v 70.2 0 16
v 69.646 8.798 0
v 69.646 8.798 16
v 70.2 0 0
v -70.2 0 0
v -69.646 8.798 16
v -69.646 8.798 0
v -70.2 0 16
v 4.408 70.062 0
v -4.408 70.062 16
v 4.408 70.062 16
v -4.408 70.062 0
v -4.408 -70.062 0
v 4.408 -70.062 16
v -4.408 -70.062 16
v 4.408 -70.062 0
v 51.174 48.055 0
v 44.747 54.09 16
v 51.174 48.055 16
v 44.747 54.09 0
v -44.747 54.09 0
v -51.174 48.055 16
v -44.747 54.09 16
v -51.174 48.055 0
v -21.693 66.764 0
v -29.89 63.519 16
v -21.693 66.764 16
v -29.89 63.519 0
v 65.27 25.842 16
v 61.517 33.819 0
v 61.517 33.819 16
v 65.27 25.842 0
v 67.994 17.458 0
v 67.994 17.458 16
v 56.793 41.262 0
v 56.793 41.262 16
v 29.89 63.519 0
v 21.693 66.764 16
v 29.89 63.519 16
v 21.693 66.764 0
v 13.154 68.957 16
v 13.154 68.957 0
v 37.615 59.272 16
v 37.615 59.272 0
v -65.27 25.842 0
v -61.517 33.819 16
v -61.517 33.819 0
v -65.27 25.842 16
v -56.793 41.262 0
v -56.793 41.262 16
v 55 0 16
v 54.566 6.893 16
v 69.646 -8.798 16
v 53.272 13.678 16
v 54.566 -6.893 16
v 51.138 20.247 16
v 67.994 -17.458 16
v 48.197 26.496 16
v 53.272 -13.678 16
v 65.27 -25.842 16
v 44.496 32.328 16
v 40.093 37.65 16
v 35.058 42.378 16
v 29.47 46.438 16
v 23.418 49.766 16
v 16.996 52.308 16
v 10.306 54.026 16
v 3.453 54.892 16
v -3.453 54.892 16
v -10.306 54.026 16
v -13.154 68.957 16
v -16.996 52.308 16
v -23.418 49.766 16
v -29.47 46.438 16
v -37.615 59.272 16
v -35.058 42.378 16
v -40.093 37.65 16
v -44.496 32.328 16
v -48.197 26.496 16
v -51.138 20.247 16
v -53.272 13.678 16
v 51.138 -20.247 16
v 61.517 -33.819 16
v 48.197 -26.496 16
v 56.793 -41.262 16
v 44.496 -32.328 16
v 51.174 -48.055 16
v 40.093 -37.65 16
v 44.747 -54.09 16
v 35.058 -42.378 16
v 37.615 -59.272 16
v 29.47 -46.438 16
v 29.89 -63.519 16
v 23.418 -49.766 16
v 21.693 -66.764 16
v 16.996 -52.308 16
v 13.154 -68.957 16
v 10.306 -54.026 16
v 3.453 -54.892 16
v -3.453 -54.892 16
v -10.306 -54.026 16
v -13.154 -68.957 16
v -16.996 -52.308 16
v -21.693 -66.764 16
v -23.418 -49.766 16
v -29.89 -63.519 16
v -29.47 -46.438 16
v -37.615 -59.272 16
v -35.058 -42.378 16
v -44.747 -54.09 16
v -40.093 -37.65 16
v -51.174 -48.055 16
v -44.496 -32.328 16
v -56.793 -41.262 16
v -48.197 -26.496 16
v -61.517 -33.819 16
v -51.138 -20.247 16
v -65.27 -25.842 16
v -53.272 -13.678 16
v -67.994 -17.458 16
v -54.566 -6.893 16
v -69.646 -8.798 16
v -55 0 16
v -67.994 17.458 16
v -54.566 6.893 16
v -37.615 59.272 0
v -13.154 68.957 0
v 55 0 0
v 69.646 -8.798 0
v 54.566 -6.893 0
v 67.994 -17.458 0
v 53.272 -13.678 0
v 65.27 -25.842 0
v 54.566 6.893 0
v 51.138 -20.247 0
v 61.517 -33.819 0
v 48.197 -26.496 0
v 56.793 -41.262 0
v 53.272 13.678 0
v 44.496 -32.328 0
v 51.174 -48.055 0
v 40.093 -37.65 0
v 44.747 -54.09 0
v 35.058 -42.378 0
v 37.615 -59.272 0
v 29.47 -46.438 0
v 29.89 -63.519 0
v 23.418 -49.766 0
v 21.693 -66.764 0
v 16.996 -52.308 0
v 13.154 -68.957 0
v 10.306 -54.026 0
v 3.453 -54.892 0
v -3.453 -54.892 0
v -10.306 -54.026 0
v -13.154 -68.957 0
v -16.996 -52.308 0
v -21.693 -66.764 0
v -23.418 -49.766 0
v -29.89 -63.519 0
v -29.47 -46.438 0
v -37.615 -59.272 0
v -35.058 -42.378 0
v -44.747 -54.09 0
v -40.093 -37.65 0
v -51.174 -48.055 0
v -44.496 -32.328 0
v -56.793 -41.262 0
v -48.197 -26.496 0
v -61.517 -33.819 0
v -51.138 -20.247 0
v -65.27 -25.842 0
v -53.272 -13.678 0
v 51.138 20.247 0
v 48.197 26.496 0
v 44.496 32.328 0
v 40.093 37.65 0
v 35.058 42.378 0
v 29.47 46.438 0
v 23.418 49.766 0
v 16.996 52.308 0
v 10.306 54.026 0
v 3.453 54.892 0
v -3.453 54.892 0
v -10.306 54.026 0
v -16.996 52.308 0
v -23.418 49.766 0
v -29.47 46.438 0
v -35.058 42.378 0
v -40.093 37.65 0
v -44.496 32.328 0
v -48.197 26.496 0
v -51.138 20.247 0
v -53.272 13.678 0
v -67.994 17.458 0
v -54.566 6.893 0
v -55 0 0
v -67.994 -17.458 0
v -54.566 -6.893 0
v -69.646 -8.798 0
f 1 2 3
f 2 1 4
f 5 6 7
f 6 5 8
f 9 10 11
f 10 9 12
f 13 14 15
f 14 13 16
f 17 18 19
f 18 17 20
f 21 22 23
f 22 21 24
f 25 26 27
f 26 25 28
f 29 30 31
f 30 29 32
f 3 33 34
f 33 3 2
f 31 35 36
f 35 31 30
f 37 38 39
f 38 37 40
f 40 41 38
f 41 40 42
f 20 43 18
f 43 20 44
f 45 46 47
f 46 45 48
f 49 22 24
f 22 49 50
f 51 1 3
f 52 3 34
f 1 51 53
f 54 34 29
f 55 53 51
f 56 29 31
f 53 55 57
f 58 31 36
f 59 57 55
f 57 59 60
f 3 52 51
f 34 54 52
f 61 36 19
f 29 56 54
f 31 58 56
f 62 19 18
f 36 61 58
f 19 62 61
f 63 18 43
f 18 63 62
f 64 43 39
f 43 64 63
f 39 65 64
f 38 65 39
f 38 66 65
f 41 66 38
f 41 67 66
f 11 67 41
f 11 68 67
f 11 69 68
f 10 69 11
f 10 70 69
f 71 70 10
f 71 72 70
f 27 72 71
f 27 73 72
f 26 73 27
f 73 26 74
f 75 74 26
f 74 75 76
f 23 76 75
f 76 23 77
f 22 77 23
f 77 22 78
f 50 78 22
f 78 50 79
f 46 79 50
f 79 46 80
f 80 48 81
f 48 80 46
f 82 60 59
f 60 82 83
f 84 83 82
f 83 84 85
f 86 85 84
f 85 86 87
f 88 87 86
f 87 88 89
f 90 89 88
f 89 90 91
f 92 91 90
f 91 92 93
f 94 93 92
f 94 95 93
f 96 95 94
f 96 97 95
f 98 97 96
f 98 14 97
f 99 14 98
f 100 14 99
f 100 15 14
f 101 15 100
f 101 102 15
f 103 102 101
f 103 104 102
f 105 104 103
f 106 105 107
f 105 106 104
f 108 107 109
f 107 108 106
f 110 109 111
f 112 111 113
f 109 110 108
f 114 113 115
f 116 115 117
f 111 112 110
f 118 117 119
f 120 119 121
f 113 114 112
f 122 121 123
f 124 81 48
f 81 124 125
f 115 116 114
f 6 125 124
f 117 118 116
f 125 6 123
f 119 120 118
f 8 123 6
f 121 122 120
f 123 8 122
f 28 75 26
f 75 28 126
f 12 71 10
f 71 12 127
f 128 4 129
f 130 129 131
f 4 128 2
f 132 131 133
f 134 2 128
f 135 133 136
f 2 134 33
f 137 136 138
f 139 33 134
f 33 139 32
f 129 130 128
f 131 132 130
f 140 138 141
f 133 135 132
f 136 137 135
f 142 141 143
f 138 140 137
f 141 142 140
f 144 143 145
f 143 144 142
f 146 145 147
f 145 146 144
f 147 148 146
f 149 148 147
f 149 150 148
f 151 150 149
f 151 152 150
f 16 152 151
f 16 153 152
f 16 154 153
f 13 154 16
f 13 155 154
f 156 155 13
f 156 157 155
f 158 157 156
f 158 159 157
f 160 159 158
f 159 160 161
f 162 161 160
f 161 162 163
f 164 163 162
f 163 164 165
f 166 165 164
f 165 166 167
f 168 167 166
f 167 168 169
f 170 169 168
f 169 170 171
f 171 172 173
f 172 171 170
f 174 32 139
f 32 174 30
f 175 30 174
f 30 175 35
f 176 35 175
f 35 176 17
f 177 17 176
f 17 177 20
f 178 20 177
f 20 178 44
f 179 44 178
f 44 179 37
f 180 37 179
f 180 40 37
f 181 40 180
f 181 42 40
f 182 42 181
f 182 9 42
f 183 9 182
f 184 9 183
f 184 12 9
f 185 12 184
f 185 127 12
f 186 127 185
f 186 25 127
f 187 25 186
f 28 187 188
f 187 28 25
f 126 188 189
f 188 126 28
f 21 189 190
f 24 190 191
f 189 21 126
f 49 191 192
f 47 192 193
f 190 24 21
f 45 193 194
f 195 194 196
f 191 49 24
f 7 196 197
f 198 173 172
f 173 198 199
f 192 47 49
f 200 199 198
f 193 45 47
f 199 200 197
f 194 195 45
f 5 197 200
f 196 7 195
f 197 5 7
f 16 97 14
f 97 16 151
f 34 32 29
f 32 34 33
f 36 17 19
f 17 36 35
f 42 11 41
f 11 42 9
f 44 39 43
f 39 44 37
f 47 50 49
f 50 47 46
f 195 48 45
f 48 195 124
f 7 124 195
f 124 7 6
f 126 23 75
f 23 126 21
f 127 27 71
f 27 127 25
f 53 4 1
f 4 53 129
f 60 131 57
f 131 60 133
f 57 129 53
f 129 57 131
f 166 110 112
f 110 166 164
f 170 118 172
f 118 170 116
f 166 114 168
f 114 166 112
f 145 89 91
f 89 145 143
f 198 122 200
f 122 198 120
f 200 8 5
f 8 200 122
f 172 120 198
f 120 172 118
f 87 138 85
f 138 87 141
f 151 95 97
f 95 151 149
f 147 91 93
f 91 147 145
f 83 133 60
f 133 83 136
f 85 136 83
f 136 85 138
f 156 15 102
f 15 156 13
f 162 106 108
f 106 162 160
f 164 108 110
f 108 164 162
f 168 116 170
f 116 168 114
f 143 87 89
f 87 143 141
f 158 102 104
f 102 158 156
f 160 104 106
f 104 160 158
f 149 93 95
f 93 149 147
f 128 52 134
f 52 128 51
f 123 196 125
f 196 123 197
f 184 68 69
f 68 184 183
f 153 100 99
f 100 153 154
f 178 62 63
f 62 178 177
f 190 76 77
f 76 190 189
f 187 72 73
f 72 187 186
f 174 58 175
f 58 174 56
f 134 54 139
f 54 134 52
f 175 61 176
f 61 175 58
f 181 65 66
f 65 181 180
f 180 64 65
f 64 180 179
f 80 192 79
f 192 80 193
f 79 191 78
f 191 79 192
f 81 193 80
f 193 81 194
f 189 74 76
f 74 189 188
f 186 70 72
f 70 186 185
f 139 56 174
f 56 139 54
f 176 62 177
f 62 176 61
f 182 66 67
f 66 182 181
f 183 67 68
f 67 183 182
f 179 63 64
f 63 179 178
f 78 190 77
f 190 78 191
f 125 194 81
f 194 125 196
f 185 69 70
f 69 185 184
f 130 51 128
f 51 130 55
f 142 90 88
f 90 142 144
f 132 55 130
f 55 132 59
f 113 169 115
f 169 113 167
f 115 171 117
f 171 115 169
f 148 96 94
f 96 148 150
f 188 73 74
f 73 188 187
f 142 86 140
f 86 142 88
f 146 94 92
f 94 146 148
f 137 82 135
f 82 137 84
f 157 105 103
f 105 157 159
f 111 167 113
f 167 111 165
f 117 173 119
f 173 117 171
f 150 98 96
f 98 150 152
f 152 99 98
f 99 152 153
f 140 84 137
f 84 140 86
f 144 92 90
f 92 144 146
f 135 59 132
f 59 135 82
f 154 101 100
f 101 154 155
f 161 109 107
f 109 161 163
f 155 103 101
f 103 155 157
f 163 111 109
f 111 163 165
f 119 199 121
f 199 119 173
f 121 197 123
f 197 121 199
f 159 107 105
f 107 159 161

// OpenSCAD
$fn = 50;


difference() {
	union() {
		translate(v = [0, 0, 0]) {
			rotate(a = [0, 0, 0]) {
				cylinder(h = 16, r = 70.2000000000);
			}
		}
	}
	union() {
		translate(v = [0, 0, 0]) {
			rotate(a = [0, 0, 0]) {
				cylinder(h = 16, r = 55.0000000000);
			}
		}
	}
}
